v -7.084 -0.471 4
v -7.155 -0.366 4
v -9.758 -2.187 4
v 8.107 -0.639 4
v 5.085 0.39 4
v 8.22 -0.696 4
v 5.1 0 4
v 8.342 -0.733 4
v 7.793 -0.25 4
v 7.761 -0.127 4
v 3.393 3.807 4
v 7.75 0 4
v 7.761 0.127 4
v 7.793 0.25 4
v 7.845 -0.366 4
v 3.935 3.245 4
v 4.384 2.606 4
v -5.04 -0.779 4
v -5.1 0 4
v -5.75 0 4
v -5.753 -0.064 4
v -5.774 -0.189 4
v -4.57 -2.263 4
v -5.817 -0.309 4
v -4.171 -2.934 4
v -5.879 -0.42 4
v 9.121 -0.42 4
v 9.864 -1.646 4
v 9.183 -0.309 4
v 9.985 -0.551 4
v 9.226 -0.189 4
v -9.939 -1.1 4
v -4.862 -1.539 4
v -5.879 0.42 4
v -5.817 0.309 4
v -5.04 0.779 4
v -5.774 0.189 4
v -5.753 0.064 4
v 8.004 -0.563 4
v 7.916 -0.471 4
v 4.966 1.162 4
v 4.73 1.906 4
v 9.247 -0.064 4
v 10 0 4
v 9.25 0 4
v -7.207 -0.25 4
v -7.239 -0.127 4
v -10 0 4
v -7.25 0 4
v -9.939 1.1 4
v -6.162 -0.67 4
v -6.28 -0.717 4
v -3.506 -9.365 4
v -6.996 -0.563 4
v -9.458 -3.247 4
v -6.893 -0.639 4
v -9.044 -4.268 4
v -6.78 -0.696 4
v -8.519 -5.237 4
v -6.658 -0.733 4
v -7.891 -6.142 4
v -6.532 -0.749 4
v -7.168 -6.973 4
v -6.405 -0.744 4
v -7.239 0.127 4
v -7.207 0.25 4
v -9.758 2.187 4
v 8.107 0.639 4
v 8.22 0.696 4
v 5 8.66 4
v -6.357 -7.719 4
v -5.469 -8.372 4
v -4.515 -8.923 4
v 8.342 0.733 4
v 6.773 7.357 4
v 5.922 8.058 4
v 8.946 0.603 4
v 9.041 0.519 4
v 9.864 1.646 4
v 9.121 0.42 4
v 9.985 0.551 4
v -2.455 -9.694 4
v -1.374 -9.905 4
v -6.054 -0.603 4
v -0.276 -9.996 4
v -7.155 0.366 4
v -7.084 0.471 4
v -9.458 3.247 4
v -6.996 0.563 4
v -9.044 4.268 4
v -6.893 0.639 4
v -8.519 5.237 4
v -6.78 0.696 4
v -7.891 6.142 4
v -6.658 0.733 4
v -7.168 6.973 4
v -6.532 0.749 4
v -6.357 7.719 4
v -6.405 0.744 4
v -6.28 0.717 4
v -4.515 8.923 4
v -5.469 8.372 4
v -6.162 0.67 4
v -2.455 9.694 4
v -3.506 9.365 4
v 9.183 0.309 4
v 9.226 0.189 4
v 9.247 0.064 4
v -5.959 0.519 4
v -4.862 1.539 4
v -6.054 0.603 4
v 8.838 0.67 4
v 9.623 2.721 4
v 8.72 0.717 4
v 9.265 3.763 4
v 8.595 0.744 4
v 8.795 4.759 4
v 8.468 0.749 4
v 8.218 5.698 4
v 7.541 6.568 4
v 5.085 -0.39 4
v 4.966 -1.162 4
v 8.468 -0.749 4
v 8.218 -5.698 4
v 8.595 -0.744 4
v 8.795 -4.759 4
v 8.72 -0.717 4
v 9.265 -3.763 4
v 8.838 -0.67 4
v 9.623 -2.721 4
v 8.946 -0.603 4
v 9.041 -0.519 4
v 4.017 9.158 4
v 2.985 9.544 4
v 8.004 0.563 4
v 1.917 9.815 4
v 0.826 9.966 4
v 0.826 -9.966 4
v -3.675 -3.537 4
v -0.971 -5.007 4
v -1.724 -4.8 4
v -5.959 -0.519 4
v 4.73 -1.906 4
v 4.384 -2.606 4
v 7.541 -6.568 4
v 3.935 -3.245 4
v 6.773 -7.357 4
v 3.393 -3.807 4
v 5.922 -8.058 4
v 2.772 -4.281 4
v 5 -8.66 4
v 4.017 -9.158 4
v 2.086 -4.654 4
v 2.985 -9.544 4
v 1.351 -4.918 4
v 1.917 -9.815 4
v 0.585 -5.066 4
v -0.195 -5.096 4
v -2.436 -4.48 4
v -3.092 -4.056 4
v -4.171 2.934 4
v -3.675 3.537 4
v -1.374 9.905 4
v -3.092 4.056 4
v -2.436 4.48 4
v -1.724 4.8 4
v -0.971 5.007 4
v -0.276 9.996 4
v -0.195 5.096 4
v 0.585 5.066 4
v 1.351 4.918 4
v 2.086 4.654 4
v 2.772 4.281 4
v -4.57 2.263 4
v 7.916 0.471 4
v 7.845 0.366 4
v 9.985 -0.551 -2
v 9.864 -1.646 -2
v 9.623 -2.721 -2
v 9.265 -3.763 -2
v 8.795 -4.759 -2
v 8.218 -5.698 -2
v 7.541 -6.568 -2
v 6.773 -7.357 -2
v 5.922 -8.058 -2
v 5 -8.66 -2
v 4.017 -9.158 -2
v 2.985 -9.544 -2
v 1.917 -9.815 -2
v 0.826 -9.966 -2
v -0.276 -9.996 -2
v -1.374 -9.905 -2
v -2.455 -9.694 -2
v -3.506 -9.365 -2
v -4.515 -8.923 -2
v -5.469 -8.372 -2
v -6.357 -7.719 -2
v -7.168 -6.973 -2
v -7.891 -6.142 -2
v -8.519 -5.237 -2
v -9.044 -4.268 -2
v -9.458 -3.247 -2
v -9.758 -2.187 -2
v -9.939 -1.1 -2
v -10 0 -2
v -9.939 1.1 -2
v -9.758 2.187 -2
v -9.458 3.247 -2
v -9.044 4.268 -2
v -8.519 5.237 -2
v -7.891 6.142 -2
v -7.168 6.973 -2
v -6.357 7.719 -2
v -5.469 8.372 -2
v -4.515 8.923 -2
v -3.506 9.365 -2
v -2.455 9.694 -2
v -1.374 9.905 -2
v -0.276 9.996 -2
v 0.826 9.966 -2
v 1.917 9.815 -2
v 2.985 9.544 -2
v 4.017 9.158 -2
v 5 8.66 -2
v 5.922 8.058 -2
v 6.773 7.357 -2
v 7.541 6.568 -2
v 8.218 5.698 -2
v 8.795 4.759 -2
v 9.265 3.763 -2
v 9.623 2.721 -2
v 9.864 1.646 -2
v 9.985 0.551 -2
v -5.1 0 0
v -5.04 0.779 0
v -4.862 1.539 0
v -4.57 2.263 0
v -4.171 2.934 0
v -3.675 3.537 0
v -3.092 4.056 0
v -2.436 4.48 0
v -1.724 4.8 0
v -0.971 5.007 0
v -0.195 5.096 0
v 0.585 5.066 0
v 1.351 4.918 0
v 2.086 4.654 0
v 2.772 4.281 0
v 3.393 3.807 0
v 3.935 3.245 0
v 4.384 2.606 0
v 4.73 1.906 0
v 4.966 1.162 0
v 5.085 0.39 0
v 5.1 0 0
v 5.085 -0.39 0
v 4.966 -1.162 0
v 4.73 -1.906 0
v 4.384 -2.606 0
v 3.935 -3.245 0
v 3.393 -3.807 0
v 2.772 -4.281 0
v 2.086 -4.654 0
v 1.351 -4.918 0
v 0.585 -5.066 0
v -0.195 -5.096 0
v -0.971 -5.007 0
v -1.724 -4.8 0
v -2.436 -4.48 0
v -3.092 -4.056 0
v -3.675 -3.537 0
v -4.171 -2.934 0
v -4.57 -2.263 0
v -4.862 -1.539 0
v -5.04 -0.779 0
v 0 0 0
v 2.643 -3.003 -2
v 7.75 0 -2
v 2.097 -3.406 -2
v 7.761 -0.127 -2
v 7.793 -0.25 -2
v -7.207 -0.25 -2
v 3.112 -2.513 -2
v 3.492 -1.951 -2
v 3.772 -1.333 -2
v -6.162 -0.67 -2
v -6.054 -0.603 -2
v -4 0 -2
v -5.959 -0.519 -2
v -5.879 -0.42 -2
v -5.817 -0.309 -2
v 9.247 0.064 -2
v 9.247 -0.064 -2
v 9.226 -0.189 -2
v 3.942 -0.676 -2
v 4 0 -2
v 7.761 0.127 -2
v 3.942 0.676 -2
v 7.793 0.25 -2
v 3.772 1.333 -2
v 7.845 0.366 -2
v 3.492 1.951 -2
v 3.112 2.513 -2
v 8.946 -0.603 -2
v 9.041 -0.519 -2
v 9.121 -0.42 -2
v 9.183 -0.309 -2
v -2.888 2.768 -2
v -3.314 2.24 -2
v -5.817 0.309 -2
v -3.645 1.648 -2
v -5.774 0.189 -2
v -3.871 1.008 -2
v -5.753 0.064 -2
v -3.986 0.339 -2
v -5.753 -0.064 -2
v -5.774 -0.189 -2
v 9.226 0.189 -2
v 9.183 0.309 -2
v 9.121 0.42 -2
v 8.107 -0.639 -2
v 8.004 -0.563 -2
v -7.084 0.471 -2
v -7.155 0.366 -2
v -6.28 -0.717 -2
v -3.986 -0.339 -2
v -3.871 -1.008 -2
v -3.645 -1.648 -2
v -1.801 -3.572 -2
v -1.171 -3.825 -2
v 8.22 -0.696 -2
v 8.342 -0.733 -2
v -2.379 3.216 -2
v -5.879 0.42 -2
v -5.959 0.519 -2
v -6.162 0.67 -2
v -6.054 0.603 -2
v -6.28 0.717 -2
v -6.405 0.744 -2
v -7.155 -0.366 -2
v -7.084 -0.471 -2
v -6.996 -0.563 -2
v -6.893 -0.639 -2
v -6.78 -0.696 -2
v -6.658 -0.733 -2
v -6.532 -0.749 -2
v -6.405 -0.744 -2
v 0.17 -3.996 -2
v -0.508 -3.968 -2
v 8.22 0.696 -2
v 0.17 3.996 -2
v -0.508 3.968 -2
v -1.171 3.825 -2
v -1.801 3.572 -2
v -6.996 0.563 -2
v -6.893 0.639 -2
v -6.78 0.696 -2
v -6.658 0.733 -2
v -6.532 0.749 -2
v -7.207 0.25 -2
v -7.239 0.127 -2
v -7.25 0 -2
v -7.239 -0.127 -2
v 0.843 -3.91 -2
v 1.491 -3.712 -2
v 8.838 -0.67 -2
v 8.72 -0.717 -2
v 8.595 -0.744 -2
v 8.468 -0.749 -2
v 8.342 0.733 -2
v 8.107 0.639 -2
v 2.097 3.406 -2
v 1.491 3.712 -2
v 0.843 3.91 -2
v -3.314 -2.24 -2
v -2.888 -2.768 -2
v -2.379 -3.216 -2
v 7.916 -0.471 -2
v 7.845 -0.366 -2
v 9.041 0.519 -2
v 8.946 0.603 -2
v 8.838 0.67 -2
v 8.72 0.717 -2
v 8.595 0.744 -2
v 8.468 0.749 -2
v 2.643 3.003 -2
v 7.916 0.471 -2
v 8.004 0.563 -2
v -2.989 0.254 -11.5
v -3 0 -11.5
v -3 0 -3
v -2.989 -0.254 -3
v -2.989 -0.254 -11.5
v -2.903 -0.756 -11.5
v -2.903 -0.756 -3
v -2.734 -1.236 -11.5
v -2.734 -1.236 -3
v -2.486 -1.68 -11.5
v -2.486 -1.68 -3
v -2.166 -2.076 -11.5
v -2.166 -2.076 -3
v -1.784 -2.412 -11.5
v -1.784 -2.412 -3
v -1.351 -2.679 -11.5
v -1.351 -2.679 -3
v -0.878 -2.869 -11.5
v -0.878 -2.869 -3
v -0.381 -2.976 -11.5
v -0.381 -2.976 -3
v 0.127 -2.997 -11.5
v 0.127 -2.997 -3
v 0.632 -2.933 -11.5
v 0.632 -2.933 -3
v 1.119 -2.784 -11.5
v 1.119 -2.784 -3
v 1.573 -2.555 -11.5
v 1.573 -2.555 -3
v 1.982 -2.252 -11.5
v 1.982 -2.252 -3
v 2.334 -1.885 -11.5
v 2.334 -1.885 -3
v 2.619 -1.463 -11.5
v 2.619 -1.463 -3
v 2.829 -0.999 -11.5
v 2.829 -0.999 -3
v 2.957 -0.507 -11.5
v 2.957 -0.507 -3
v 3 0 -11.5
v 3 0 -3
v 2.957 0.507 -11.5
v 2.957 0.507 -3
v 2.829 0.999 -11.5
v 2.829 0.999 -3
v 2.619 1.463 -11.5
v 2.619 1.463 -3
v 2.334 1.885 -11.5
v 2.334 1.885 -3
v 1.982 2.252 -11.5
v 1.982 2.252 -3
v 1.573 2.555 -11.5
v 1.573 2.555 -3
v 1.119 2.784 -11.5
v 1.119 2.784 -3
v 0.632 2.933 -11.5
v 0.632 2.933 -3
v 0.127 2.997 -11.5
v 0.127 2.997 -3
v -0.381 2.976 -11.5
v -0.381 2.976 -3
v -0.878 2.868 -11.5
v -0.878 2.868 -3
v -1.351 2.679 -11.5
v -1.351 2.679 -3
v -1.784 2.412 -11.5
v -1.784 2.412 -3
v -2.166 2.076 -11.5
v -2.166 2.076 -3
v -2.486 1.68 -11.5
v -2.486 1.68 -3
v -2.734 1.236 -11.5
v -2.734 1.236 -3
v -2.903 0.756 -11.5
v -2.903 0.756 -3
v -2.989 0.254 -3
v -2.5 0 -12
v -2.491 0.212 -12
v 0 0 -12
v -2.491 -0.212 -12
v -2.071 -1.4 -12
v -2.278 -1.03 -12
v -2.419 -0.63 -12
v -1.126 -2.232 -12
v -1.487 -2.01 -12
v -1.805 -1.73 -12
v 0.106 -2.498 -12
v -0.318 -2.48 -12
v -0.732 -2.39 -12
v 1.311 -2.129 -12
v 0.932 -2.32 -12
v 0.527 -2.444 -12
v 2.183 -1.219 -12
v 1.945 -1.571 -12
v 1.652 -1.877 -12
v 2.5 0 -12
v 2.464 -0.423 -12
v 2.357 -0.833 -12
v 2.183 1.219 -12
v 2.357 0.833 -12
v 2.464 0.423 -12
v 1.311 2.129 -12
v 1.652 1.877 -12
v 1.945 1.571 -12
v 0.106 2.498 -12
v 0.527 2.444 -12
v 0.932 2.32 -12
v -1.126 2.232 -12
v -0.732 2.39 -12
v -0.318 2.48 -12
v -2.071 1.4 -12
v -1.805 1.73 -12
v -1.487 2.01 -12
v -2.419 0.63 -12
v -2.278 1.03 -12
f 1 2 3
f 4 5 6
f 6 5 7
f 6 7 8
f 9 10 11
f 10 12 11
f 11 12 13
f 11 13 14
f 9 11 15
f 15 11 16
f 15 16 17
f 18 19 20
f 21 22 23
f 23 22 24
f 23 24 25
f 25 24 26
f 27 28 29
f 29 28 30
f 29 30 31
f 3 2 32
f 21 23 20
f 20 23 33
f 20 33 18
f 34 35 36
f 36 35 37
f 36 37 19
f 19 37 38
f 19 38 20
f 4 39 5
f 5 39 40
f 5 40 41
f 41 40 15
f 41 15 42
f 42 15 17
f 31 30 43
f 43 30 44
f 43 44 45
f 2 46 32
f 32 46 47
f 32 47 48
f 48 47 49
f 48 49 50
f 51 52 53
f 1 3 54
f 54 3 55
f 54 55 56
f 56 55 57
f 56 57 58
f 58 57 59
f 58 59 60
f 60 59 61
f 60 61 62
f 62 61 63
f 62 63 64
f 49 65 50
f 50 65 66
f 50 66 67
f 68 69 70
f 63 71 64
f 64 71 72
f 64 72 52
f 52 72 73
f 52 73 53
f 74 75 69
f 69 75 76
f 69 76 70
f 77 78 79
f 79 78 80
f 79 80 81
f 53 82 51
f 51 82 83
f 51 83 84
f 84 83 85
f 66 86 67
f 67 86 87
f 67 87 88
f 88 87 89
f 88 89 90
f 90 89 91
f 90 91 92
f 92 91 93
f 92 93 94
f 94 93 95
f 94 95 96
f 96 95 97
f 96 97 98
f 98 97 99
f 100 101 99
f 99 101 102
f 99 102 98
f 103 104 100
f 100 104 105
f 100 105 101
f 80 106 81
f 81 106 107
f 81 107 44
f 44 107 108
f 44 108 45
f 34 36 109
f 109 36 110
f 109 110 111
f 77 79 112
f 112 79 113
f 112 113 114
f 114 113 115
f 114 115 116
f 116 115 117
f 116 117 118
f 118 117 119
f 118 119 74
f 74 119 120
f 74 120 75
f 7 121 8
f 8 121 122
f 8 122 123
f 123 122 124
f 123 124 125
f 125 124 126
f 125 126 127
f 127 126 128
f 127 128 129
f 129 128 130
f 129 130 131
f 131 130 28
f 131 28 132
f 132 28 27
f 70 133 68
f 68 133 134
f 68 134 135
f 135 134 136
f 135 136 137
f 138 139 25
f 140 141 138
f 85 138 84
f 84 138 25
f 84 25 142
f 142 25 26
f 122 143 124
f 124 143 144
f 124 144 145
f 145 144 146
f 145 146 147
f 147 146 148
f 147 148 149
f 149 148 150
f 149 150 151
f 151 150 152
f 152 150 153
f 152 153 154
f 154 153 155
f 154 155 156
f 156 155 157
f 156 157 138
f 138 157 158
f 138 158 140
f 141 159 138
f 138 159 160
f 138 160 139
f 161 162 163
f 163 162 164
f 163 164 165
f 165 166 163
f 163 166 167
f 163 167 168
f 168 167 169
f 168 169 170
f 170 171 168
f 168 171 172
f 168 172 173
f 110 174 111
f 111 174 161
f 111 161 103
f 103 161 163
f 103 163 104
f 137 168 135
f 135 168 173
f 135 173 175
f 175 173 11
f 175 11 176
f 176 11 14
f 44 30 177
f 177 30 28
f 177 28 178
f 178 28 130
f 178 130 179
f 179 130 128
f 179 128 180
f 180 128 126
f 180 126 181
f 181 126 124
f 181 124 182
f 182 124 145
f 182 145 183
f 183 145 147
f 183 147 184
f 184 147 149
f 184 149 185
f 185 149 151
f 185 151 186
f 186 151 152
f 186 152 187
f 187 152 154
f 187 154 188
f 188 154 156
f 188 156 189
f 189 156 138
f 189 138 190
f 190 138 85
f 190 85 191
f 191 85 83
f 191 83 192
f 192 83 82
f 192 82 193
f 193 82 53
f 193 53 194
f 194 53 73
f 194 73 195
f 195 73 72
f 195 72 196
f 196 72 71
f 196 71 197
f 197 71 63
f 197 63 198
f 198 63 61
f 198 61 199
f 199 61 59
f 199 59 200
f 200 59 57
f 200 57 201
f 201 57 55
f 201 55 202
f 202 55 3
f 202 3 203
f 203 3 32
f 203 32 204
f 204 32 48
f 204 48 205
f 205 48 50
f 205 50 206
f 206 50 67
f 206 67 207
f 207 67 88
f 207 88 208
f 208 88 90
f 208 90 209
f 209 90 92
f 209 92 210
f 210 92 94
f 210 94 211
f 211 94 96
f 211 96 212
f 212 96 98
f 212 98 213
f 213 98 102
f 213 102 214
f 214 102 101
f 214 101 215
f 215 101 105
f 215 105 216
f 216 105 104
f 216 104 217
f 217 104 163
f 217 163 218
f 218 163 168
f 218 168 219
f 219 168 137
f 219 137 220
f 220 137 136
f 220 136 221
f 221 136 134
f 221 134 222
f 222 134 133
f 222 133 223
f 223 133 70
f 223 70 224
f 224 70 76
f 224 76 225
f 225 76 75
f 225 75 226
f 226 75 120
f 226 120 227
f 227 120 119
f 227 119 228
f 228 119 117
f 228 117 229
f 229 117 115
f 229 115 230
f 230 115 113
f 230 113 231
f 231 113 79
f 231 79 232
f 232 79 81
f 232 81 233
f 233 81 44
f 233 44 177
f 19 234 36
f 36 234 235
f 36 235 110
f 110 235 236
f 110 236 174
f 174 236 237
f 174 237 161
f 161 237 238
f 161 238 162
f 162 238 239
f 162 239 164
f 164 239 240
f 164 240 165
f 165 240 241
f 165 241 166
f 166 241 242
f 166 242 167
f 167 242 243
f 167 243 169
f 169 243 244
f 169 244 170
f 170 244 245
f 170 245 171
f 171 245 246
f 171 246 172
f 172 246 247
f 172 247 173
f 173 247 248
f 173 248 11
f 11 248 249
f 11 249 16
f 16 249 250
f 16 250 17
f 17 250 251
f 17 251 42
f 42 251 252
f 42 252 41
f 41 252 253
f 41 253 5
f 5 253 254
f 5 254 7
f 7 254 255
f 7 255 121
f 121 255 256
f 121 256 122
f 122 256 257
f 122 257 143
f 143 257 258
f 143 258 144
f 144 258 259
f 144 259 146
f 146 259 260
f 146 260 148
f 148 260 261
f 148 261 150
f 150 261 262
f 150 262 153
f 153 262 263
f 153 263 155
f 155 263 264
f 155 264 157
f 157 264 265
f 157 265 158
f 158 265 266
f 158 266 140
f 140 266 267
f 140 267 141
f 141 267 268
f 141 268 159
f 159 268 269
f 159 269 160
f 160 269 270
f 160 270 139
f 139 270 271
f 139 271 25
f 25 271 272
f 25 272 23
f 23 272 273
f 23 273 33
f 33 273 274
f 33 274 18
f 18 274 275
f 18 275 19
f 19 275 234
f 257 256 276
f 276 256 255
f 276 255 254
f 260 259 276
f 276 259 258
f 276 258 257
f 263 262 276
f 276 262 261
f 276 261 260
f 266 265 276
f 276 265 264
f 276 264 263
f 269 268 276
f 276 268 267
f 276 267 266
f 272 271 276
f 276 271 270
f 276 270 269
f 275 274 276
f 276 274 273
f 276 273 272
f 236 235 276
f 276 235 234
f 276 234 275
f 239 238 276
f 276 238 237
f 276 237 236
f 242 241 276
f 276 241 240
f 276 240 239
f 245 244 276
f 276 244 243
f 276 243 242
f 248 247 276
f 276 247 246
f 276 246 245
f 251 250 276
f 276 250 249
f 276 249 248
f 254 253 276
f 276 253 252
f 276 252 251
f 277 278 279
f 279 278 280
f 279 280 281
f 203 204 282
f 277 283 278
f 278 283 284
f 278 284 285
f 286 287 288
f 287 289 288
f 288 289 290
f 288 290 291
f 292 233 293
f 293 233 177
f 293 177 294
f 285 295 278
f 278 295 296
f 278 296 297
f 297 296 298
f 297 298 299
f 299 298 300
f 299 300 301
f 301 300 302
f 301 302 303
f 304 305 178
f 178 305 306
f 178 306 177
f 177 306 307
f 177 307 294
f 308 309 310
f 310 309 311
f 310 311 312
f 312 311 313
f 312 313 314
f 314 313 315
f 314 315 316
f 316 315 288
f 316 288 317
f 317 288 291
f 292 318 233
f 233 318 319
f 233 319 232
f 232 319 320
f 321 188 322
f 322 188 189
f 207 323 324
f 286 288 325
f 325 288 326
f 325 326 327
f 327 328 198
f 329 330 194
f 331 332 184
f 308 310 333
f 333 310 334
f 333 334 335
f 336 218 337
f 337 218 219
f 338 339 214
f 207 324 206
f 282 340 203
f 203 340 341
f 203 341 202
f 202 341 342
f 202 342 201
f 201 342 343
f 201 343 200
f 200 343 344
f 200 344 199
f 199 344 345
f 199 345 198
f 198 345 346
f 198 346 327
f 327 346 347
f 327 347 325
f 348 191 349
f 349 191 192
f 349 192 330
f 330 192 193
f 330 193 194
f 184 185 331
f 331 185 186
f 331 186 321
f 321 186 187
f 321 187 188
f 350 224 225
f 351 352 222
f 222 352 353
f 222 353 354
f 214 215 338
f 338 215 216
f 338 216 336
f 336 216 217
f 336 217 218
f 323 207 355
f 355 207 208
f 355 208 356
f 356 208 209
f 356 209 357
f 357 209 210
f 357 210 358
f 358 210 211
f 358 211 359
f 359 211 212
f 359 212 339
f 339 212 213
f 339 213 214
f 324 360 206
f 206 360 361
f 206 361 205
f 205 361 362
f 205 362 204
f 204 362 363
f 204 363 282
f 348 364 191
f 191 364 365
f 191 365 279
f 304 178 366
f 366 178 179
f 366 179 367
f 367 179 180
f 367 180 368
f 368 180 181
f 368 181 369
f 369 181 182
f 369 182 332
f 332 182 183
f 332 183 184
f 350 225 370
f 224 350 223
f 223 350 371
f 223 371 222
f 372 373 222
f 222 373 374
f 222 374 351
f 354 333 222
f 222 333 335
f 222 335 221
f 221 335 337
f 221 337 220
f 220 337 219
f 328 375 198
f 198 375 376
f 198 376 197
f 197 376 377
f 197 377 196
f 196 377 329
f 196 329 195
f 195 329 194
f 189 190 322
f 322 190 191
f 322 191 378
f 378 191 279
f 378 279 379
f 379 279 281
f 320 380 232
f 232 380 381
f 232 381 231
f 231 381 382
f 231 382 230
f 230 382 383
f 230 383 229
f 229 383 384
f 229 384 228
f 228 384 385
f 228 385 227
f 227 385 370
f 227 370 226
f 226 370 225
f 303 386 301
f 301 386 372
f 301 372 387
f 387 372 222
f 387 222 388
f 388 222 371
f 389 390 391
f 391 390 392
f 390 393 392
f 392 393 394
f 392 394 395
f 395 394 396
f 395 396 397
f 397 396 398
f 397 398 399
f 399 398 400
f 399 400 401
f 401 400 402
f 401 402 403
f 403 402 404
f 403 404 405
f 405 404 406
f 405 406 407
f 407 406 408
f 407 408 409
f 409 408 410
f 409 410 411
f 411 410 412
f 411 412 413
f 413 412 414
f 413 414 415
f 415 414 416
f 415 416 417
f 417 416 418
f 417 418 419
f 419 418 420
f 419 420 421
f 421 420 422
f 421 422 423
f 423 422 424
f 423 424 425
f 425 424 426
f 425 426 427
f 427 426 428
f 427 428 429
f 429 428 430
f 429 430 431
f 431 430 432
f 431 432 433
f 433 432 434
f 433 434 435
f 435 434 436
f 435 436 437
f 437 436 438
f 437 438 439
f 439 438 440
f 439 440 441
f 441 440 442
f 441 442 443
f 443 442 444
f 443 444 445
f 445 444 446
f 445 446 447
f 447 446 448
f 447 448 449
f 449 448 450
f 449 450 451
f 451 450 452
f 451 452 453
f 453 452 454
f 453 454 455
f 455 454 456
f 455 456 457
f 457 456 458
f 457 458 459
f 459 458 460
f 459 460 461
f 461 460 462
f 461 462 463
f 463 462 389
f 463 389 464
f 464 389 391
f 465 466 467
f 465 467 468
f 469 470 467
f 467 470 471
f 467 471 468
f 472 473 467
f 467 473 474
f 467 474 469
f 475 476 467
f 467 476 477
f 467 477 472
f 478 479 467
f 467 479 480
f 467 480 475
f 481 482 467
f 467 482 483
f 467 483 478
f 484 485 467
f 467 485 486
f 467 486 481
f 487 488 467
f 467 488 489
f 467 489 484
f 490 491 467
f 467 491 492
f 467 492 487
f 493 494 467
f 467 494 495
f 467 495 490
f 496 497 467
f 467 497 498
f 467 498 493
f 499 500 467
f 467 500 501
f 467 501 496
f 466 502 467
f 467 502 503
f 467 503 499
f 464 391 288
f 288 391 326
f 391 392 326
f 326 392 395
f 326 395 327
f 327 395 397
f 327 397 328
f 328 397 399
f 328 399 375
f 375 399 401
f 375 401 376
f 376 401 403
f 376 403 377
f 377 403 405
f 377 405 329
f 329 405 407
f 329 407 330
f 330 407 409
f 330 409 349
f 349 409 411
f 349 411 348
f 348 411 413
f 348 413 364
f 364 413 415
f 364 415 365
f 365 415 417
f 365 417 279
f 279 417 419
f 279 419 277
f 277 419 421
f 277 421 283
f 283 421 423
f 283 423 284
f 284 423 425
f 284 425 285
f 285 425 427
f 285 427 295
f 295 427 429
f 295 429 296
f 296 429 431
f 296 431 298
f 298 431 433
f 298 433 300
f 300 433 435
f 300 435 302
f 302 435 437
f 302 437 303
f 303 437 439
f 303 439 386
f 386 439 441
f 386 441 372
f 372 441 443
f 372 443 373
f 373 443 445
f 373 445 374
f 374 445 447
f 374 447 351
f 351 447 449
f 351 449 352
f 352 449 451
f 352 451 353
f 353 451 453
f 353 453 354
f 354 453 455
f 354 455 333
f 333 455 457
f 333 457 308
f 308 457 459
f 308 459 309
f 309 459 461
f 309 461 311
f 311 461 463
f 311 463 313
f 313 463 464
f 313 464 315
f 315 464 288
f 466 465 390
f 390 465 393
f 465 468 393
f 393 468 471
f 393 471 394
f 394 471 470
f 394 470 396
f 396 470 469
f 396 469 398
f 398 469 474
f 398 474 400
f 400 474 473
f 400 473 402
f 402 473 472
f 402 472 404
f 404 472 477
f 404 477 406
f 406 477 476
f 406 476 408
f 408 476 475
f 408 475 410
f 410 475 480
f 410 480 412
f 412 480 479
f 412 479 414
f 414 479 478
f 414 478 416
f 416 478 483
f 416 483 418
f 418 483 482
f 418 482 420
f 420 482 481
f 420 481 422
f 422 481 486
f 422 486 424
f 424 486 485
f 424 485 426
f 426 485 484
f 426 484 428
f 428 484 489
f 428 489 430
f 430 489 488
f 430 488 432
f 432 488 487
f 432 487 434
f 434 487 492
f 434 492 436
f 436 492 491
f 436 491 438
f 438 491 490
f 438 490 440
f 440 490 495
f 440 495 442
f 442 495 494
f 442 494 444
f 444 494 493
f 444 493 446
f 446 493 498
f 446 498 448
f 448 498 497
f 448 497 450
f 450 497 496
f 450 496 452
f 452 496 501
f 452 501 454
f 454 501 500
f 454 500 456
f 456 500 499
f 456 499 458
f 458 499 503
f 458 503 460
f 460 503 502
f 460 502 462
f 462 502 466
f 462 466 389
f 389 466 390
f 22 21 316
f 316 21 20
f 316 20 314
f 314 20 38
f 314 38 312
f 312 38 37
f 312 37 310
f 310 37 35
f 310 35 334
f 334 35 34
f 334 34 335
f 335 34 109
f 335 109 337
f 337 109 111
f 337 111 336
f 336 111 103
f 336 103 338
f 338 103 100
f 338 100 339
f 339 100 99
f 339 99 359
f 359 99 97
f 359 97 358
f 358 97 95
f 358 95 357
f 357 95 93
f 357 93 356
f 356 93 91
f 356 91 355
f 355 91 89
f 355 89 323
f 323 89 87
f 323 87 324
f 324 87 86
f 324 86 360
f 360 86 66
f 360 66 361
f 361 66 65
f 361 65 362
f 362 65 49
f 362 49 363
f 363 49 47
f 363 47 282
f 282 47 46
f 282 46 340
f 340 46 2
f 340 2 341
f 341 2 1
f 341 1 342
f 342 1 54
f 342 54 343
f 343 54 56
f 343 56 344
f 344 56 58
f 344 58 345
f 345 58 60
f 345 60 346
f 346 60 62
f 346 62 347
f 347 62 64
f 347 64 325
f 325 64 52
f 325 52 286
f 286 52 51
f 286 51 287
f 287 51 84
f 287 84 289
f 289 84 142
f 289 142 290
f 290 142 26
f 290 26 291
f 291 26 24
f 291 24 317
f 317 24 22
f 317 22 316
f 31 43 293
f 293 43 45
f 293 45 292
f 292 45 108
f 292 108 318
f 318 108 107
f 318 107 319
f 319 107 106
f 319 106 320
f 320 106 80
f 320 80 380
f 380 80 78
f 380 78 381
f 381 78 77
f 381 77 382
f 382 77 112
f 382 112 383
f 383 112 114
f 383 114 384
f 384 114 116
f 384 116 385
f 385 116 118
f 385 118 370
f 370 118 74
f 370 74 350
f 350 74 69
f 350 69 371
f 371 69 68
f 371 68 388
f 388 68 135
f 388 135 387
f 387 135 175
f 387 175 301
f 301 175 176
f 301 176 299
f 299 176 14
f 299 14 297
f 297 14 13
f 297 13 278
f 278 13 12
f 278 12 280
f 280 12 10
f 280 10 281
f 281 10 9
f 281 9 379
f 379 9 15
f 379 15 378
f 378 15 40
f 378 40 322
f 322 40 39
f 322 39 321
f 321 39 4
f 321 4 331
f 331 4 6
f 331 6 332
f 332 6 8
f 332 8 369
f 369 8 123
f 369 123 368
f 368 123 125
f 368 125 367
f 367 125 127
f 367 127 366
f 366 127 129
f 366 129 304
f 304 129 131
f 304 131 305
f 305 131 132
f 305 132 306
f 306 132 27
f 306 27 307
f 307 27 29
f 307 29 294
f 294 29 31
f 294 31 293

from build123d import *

# Parameters (mm, degrees)
SKETCH1_R           = 10
SKETCH1_R_2         = 5.1
BOSS_EXTRUDE1_DEPTH = 4
SKETCH3_R           = 3
BOSS_EXTRUDE2_DEPTH = 12
SKETCH4_R           = 10
SKETCH4_R_2         = 3
BOSS_EXTRUDE3_DEPTH = 2
CHAMFER2_SIZE       = 1
CHAMFER4_SIZE       = 0.5
CUT_EXTRUDE1_REACH  = 8
SKETCH5_R           = 0.75


with BuildPart() as part:
    # Sketch1 → Boss-Extrude1 (new body)
    with BuildSketch(Plane.XY):
        Circle(SKETCH1_R)
        Circle(SKETCH1_R_2, mode=Mode.SUBTRACT)
    extrude(amount=BOSS_EXTRUDE1_DEPTH)



with BuildPart() as body_2:
    # Sketch3 → Boss-Extrude2 (new body)
    with BuildSketch(Plane(origin=(0, 0, 0), x_dir=(-1, 0, 0), z_dir=(0, 0, -1))):
        Circle(SKETCH3_R)
    extrude(amount=BOSS_EXTRUDE2_DEPTH)


with BuildPart() as part_1:
    add(part.part)

    add(body_2.part)  # Boss-Extrude3 merges body 2
    # Sketch4 → Boss-Extrude3 (add)
    with BuildSketch(Plane(origin=(0, 0, 0), x_dir=(-1, 0, 0), z_dir=(0, 0, -1))):
        Circle(SKETCH4_R)
        Circle(SKETCH4_R_2, mode=Mode.SUBTRACT)
    extrude(amount=BOSS_EXTRUDE3_DEPTH)

    # Chamfer2
    chamfer2_edges = [part_1.edges().sort_by_distance(p)[0] for p in [
        (3, 0, -2),
    ]]
    chamfer(chamfer2_edges, length=CHAMFER2_SIZE)

    # Chamfer4
    chamfer4_edges = [part_1.edges().sort_by_distance(p)[0] for p in [
        (3, 0, -12),
    ]]
    chamfer(chamfer4_edges, length=CHAMFER4_SIZE)

    # Sketch5 → Cut-Extrude1 (cut, up to next)
    with BuildSketch(Plane(origin=(0, 0, -2), x_dir=(-1, 0, 0), z_dir=(0, 0, -1)), mode=Mode.PRIVATE) as cut_extrude1_sk1:
        with Locations((-8.5, 0)):
            Circle(SKETCH5_R)
    cut_extrude1_tool1 = extrude(cut_extrude1_sk1.sketch, amount=-CUT_EXTRUDE1_REACH, mode=Mode.PRIVATE) & part_1.part
    add(cut_extrude1_tool1.solids().sort_by_distance((8.5, 0, -2))[0], mode=Mode.SUBTRACT)
    # Sketch5 → Cut-Extrude1 (cut, up to next)
    with BuildSketch(Plane(origin=(0, 0, -2), x_dir=(-1, 0, 0), z_dir=(0, 0, -1)), mode=Mode.PRIVATE) as cut_extrude1_sk2:
        with Locations((6.5, 0)):
            Circle(SKETCH5_R)
    cut_extrude1_tool2 = extrude(cut_extrude1_sk2.sketch, amount=-CUT_EXTRUDE1_REACH, mode=Mode.PRIVATE) & part_1.part
    add(cut_extrude1_tool2.solids().sort_by_distance((-6.5, 0, -2))[0], mode=Mode.SUBTRACT)


solid = part_1.part
